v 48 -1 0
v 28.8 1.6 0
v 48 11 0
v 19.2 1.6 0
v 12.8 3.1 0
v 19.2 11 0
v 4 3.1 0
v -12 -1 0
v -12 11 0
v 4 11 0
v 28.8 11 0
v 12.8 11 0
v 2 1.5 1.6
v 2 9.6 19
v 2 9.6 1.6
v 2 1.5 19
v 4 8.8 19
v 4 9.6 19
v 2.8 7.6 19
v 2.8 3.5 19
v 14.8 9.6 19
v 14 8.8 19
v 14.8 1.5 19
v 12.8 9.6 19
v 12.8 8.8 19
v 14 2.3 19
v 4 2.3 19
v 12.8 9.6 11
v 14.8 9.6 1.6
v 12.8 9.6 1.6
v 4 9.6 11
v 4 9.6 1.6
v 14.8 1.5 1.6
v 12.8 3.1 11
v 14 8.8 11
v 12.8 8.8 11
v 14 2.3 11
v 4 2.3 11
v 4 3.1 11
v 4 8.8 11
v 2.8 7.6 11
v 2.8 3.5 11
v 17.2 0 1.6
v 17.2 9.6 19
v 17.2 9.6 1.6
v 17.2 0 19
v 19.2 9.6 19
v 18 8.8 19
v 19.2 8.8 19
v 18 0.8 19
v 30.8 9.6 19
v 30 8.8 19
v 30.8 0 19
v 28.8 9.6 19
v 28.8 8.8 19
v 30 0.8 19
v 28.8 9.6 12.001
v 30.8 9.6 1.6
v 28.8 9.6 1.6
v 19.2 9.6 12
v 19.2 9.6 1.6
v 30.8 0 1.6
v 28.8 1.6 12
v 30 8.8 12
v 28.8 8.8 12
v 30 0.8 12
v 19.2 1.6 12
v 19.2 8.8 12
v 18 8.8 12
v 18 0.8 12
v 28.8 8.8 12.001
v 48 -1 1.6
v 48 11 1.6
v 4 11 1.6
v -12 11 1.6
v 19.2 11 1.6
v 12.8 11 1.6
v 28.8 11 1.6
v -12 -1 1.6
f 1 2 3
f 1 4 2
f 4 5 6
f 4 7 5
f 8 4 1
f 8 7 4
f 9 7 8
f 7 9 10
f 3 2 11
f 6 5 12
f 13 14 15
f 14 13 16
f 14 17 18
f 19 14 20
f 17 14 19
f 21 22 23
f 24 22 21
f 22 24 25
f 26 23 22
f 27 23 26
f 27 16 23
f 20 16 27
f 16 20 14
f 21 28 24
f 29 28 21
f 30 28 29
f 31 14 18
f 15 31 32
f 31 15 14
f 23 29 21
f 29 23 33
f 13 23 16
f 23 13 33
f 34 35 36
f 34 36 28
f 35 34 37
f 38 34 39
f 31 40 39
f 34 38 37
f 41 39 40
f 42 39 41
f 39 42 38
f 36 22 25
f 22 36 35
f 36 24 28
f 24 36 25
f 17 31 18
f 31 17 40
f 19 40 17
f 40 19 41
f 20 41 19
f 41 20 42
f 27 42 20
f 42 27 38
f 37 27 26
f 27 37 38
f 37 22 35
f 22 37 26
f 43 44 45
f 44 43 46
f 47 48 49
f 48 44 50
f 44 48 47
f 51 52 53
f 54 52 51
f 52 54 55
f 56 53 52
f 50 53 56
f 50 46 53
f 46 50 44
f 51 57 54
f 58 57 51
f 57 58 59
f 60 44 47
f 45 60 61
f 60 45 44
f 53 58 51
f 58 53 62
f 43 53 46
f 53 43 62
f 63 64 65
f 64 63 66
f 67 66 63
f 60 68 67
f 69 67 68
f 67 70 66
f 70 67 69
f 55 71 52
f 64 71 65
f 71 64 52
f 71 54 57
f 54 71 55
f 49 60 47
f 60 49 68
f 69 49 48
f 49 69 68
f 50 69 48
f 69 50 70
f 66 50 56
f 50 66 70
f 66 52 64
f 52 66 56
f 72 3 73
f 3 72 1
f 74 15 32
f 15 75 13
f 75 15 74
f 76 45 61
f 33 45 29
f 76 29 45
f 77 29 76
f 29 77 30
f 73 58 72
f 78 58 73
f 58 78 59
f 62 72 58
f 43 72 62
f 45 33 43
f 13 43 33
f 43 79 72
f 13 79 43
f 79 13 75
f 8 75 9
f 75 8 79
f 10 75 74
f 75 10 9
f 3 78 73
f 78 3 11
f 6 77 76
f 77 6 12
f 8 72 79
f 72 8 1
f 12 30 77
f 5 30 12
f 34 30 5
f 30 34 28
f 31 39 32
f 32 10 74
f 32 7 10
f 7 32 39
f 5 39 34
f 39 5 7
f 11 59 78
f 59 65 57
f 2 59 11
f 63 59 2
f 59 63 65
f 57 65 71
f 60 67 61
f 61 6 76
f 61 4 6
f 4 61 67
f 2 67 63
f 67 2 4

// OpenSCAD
e=.001;
xt32_w=11.2;
xt32_h=6.5;
b=.8;
n=1.2;

rj45_w=12;
rj45_h=8;


module keepout(w, h, b, n)
{
translate([0,0,12])
linear_extrude(8+e)
	translate([b,b])
	polygon([[0,0], [w,0], [w,h], [w-n,h], [w-n,h+b+e], [n,h+b+e], [n, h], [0,h]]);
}

module xt_keepout(w, h, b, n, ch)
{
translate([0,0,11])
linear_extrude(8+e)
	translate([b,b])
	polygon([[0,ch],[ch,0], [w,0], [w,h], [w-n,h], [w-n,h+b+e], [n,h+b+e], [n, h], [ch,h], [0,h-ch]]);
}


module xt_clam()
{
{
	difference()
	{
linear_extrude(19)
		square([xt32_w+b*2,xt32_h+b*2]);
		xt_keepout(xt32_w, xt32_h, b, n, n);
	}
}
}

module rj45_clam()
{
{
	difference()
	{
linear_extrude(19)
		square([rj45_w+b*2,rj45_h+b*2]);
		keepout(rj45_w, rj45_h, b, n);
	}
}
}

//cube([33,10,9+e]);
//translate([0,0,9])

difference()
{
union(){
translate([2,rj45_h-xt32_h])
xt_clam();
translate([17.2,0])
rj45_clam();
translate([-12,-1,0])
cube([60,12,1.6]);
}
union(){
translate([2+b+n,rj45_h-xt32_h+b*2,-e])
cube([xt32_w-2*n,12,e*2+11]);
translate([17.2+b+n,b*2,-e])
cube([rj45_w-2*n,12,e*2+12]);
}
}
